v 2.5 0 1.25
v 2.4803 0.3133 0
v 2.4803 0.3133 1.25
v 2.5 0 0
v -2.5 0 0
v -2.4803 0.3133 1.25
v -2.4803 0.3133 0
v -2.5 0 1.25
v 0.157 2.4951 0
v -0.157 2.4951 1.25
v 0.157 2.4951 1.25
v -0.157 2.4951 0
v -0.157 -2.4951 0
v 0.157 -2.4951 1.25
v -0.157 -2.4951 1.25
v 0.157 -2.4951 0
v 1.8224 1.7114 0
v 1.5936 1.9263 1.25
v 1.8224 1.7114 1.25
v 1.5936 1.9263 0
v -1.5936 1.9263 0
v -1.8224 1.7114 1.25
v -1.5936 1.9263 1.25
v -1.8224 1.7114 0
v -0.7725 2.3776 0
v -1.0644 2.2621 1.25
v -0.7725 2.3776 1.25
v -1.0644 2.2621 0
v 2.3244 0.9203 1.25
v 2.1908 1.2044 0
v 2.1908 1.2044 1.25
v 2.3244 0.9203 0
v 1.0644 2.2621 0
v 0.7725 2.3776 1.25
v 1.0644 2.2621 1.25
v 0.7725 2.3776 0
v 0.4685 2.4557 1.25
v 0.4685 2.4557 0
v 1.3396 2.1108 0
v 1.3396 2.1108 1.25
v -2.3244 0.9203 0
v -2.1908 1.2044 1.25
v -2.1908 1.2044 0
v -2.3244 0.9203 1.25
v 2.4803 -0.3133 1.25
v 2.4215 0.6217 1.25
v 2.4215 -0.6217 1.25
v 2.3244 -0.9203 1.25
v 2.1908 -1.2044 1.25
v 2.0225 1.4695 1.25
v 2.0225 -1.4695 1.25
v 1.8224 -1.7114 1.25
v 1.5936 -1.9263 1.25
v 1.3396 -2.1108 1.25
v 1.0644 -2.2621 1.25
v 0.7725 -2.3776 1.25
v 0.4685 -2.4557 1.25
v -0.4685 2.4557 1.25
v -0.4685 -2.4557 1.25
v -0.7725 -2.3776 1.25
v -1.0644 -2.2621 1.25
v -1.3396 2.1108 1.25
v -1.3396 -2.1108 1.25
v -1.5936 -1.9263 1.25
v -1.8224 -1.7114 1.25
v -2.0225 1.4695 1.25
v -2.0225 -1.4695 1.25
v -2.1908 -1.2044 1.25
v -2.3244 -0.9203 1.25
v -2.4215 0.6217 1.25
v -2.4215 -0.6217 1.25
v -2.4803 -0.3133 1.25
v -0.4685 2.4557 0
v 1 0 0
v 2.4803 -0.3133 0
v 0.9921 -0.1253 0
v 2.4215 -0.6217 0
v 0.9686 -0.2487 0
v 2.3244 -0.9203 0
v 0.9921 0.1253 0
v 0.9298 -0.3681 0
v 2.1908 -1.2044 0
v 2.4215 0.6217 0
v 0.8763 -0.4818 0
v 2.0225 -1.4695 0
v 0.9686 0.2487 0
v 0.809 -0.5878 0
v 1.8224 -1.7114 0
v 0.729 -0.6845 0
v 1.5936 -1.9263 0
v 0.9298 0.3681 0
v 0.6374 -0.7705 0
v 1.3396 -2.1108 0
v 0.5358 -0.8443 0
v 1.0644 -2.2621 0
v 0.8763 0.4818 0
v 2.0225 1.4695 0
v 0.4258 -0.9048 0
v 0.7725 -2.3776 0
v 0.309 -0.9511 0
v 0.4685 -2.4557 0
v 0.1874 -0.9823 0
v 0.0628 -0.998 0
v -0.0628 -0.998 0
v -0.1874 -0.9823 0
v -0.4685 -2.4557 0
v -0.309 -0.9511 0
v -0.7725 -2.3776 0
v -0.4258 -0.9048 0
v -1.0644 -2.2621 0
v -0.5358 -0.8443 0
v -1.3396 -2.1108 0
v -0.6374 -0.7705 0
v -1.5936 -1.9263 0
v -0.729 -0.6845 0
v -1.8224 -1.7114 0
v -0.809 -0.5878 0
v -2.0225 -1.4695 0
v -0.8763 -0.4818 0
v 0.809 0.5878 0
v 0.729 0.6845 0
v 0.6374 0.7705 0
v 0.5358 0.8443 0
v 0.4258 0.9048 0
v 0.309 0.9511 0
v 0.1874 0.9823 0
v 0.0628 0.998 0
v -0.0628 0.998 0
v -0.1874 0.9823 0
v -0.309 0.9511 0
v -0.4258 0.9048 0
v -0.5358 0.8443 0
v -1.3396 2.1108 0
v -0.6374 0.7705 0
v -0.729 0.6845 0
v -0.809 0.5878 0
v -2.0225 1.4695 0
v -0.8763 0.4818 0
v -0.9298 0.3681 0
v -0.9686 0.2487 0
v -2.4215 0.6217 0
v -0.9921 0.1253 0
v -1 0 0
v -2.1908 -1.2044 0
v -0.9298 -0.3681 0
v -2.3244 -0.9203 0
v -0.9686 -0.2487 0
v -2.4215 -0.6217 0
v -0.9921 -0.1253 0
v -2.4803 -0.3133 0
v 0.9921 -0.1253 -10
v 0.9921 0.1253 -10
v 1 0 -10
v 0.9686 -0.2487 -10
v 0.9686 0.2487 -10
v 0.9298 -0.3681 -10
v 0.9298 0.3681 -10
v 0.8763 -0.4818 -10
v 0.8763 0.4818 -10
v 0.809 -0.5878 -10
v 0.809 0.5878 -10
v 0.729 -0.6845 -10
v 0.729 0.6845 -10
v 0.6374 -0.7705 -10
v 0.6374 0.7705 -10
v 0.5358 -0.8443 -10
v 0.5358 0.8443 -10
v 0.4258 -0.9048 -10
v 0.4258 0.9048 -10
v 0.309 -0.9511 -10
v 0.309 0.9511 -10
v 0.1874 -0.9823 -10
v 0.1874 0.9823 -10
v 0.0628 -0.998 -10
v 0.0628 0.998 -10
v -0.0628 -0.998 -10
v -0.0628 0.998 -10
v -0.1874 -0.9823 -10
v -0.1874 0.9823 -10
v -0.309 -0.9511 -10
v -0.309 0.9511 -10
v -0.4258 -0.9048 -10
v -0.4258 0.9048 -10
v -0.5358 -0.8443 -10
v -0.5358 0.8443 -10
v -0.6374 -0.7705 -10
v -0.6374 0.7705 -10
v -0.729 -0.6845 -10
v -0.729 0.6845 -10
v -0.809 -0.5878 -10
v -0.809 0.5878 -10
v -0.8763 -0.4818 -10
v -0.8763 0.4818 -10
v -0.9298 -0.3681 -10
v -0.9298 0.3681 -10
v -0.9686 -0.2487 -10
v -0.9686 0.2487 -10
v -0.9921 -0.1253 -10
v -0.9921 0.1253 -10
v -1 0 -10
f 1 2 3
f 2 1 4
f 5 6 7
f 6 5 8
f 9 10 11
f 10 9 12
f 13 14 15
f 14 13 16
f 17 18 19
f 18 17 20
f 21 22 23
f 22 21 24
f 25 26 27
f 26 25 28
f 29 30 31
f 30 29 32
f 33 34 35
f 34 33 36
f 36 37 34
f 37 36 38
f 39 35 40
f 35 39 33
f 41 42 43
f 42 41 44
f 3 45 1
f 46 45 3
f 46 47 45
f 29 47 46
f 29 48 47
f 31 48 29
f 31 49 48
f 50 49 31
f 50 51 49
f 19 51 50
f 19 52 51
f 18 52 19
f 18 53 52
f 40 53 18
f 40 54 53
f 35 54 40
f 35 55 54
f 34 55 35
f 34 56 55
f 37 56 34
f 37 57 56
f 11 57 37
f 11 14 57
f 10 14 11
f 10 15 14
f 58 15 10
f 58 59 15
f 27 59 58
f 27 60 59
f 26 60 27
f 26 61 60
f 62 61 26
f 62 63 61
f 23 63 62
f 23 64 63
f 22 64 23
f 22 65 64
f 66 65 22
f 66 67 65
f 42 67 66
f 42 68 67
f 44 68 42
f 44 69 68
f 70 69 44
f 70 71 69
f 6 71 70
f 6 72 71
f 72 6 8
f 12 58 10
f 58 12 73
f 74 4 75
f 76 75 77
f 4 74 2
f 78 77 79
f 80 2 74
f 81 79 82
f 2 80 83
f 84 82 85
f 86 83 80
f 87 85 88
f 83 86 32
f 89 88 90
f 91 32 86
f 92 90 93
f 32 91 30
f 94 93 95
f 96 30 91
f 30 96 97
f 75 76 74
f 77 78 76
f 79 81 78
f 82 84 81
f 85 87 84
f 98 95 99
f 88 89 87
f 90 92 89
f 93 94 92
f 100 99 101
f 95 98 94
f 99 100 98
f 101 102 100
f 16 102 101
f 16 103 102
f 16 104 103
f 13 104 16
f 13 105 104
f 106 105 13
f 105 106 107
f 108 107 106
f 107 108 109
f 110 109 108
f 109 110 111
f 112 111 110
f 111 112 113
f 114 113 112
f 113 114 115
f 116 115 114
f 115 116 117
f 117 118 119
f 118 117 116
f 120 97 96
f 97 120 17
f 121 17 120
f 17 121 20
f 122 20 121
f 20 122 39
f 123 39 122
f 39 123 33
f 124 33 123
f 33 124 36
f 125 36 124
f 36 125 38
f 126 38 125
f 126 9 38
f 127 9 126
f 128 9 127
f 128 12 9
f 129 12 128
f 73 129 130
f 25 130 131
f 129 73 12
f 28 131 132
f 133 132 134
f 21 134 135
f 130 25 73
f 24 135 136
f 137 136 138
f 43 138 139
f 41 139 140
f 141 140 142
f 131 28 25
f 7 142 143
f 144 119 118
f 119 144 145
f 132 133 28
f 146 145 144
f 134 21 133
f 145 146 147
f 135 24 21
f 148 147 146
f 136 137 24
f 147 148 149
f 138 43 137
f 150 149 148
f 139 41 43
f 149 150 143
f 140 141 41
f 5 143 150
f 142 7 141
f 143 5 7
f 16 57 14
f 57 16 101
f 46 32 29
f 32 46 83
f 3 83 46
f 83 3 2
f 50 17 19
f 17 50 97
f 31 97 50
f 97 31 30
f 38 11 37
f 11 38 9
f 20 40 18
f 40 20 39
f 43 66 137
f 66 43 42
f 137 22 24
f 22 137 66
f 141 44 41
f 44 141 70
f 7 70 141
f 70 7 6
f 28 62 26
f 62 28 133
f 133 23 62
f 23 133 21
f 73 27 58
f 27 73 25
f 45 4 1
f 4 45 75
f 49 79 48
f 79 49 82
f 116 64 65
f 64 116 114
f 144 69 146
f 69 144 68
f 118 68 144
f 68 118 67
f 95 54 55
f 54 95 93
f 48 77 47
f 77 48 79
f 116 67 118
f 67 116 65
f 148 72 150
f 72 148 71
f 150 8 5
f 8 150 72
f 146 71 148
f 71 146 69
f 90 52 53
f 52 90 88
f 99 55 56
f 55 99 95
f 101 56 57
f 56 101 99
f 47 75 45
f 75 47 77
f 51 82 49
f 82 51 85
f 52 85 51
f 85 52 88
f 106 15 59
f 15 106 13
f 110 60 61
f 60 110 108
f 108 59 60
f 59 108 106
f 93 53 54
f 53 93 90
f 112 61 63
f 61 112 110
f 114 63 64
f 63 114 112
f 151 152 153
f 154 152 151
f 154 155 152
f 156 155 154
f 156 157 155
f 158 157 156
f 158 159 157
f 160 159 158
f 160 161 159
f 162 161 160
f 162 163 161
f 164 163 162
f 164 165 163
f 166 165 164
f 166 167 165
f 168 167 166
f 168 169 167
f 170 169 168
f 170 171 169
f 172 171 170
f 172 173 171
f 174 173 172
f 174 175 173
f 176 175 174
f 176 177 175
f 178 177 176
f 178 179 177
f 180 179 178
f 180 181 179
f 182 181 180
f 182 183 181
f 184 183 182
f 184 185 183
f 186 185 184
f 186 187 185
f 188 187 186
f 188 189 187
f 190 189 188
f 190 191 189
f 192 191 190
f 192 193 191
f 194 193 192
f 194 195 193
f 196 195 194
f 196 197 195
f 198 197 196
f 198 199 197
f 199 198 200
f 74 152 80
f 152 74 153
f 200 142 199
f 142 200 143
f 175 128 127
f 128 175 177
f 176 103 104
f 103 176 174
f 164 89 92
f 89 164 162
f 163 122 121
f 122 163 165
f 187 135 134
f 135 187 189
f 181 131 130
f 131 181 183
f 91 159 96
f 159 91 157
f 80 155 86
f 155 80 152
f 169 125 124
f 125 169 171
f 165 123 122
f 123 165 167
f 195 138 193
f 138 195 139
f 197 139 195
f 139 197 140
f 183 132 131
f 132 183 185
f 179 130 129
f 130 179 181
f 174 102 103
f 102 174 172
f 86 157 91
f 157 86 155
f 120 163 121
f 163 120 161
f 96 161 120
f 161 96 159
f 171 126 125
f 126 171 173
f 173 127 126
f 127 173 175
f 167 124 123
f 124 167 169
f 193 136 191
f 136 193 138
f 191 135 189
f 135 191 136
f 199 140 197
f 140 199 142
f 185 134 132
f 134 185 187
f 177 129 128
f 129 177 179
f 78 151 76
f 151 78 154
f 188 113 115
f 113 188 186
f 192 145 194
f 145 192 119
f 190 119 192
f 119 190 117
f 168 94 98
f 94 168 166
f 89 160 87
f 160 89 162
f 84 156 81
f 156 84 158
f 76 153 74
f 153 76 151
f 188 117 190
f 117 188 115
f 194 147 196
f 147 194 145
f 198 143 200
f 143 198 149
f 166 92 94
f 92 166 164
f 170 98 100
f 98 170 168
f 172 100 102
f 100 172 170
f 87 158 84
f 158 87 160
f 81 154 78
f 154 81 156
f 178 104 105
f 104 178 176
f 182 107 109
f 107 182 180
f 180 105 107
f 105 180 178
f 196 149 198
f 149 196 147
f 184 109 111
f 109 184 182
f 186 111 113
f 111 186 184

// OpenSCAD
$fn = 50;


difference() {
	union() {
		translate(v = [0, 0, 0]) {
			rotate(a = [0, 0, 0]) {
				difference() {
					union() {
						cylinder(h = 1.2500000000, r = 2.5000000000);
						translate(v = [0, 0, -10.0000000000]) {
							cylinder(h = 10, r = 0.7500000000);
						}
						translate(v = [0, 0, -10.0000000000]) {
							cylinder(h = 10, r = 1.0000000000);
						}
						translate(v = [0, 0, -10.0000000000]) {
							cylinder(h = 10, r = 0.7500000000);
						}
					}
					union();
				}
			}
		}
	}
	union();
}
